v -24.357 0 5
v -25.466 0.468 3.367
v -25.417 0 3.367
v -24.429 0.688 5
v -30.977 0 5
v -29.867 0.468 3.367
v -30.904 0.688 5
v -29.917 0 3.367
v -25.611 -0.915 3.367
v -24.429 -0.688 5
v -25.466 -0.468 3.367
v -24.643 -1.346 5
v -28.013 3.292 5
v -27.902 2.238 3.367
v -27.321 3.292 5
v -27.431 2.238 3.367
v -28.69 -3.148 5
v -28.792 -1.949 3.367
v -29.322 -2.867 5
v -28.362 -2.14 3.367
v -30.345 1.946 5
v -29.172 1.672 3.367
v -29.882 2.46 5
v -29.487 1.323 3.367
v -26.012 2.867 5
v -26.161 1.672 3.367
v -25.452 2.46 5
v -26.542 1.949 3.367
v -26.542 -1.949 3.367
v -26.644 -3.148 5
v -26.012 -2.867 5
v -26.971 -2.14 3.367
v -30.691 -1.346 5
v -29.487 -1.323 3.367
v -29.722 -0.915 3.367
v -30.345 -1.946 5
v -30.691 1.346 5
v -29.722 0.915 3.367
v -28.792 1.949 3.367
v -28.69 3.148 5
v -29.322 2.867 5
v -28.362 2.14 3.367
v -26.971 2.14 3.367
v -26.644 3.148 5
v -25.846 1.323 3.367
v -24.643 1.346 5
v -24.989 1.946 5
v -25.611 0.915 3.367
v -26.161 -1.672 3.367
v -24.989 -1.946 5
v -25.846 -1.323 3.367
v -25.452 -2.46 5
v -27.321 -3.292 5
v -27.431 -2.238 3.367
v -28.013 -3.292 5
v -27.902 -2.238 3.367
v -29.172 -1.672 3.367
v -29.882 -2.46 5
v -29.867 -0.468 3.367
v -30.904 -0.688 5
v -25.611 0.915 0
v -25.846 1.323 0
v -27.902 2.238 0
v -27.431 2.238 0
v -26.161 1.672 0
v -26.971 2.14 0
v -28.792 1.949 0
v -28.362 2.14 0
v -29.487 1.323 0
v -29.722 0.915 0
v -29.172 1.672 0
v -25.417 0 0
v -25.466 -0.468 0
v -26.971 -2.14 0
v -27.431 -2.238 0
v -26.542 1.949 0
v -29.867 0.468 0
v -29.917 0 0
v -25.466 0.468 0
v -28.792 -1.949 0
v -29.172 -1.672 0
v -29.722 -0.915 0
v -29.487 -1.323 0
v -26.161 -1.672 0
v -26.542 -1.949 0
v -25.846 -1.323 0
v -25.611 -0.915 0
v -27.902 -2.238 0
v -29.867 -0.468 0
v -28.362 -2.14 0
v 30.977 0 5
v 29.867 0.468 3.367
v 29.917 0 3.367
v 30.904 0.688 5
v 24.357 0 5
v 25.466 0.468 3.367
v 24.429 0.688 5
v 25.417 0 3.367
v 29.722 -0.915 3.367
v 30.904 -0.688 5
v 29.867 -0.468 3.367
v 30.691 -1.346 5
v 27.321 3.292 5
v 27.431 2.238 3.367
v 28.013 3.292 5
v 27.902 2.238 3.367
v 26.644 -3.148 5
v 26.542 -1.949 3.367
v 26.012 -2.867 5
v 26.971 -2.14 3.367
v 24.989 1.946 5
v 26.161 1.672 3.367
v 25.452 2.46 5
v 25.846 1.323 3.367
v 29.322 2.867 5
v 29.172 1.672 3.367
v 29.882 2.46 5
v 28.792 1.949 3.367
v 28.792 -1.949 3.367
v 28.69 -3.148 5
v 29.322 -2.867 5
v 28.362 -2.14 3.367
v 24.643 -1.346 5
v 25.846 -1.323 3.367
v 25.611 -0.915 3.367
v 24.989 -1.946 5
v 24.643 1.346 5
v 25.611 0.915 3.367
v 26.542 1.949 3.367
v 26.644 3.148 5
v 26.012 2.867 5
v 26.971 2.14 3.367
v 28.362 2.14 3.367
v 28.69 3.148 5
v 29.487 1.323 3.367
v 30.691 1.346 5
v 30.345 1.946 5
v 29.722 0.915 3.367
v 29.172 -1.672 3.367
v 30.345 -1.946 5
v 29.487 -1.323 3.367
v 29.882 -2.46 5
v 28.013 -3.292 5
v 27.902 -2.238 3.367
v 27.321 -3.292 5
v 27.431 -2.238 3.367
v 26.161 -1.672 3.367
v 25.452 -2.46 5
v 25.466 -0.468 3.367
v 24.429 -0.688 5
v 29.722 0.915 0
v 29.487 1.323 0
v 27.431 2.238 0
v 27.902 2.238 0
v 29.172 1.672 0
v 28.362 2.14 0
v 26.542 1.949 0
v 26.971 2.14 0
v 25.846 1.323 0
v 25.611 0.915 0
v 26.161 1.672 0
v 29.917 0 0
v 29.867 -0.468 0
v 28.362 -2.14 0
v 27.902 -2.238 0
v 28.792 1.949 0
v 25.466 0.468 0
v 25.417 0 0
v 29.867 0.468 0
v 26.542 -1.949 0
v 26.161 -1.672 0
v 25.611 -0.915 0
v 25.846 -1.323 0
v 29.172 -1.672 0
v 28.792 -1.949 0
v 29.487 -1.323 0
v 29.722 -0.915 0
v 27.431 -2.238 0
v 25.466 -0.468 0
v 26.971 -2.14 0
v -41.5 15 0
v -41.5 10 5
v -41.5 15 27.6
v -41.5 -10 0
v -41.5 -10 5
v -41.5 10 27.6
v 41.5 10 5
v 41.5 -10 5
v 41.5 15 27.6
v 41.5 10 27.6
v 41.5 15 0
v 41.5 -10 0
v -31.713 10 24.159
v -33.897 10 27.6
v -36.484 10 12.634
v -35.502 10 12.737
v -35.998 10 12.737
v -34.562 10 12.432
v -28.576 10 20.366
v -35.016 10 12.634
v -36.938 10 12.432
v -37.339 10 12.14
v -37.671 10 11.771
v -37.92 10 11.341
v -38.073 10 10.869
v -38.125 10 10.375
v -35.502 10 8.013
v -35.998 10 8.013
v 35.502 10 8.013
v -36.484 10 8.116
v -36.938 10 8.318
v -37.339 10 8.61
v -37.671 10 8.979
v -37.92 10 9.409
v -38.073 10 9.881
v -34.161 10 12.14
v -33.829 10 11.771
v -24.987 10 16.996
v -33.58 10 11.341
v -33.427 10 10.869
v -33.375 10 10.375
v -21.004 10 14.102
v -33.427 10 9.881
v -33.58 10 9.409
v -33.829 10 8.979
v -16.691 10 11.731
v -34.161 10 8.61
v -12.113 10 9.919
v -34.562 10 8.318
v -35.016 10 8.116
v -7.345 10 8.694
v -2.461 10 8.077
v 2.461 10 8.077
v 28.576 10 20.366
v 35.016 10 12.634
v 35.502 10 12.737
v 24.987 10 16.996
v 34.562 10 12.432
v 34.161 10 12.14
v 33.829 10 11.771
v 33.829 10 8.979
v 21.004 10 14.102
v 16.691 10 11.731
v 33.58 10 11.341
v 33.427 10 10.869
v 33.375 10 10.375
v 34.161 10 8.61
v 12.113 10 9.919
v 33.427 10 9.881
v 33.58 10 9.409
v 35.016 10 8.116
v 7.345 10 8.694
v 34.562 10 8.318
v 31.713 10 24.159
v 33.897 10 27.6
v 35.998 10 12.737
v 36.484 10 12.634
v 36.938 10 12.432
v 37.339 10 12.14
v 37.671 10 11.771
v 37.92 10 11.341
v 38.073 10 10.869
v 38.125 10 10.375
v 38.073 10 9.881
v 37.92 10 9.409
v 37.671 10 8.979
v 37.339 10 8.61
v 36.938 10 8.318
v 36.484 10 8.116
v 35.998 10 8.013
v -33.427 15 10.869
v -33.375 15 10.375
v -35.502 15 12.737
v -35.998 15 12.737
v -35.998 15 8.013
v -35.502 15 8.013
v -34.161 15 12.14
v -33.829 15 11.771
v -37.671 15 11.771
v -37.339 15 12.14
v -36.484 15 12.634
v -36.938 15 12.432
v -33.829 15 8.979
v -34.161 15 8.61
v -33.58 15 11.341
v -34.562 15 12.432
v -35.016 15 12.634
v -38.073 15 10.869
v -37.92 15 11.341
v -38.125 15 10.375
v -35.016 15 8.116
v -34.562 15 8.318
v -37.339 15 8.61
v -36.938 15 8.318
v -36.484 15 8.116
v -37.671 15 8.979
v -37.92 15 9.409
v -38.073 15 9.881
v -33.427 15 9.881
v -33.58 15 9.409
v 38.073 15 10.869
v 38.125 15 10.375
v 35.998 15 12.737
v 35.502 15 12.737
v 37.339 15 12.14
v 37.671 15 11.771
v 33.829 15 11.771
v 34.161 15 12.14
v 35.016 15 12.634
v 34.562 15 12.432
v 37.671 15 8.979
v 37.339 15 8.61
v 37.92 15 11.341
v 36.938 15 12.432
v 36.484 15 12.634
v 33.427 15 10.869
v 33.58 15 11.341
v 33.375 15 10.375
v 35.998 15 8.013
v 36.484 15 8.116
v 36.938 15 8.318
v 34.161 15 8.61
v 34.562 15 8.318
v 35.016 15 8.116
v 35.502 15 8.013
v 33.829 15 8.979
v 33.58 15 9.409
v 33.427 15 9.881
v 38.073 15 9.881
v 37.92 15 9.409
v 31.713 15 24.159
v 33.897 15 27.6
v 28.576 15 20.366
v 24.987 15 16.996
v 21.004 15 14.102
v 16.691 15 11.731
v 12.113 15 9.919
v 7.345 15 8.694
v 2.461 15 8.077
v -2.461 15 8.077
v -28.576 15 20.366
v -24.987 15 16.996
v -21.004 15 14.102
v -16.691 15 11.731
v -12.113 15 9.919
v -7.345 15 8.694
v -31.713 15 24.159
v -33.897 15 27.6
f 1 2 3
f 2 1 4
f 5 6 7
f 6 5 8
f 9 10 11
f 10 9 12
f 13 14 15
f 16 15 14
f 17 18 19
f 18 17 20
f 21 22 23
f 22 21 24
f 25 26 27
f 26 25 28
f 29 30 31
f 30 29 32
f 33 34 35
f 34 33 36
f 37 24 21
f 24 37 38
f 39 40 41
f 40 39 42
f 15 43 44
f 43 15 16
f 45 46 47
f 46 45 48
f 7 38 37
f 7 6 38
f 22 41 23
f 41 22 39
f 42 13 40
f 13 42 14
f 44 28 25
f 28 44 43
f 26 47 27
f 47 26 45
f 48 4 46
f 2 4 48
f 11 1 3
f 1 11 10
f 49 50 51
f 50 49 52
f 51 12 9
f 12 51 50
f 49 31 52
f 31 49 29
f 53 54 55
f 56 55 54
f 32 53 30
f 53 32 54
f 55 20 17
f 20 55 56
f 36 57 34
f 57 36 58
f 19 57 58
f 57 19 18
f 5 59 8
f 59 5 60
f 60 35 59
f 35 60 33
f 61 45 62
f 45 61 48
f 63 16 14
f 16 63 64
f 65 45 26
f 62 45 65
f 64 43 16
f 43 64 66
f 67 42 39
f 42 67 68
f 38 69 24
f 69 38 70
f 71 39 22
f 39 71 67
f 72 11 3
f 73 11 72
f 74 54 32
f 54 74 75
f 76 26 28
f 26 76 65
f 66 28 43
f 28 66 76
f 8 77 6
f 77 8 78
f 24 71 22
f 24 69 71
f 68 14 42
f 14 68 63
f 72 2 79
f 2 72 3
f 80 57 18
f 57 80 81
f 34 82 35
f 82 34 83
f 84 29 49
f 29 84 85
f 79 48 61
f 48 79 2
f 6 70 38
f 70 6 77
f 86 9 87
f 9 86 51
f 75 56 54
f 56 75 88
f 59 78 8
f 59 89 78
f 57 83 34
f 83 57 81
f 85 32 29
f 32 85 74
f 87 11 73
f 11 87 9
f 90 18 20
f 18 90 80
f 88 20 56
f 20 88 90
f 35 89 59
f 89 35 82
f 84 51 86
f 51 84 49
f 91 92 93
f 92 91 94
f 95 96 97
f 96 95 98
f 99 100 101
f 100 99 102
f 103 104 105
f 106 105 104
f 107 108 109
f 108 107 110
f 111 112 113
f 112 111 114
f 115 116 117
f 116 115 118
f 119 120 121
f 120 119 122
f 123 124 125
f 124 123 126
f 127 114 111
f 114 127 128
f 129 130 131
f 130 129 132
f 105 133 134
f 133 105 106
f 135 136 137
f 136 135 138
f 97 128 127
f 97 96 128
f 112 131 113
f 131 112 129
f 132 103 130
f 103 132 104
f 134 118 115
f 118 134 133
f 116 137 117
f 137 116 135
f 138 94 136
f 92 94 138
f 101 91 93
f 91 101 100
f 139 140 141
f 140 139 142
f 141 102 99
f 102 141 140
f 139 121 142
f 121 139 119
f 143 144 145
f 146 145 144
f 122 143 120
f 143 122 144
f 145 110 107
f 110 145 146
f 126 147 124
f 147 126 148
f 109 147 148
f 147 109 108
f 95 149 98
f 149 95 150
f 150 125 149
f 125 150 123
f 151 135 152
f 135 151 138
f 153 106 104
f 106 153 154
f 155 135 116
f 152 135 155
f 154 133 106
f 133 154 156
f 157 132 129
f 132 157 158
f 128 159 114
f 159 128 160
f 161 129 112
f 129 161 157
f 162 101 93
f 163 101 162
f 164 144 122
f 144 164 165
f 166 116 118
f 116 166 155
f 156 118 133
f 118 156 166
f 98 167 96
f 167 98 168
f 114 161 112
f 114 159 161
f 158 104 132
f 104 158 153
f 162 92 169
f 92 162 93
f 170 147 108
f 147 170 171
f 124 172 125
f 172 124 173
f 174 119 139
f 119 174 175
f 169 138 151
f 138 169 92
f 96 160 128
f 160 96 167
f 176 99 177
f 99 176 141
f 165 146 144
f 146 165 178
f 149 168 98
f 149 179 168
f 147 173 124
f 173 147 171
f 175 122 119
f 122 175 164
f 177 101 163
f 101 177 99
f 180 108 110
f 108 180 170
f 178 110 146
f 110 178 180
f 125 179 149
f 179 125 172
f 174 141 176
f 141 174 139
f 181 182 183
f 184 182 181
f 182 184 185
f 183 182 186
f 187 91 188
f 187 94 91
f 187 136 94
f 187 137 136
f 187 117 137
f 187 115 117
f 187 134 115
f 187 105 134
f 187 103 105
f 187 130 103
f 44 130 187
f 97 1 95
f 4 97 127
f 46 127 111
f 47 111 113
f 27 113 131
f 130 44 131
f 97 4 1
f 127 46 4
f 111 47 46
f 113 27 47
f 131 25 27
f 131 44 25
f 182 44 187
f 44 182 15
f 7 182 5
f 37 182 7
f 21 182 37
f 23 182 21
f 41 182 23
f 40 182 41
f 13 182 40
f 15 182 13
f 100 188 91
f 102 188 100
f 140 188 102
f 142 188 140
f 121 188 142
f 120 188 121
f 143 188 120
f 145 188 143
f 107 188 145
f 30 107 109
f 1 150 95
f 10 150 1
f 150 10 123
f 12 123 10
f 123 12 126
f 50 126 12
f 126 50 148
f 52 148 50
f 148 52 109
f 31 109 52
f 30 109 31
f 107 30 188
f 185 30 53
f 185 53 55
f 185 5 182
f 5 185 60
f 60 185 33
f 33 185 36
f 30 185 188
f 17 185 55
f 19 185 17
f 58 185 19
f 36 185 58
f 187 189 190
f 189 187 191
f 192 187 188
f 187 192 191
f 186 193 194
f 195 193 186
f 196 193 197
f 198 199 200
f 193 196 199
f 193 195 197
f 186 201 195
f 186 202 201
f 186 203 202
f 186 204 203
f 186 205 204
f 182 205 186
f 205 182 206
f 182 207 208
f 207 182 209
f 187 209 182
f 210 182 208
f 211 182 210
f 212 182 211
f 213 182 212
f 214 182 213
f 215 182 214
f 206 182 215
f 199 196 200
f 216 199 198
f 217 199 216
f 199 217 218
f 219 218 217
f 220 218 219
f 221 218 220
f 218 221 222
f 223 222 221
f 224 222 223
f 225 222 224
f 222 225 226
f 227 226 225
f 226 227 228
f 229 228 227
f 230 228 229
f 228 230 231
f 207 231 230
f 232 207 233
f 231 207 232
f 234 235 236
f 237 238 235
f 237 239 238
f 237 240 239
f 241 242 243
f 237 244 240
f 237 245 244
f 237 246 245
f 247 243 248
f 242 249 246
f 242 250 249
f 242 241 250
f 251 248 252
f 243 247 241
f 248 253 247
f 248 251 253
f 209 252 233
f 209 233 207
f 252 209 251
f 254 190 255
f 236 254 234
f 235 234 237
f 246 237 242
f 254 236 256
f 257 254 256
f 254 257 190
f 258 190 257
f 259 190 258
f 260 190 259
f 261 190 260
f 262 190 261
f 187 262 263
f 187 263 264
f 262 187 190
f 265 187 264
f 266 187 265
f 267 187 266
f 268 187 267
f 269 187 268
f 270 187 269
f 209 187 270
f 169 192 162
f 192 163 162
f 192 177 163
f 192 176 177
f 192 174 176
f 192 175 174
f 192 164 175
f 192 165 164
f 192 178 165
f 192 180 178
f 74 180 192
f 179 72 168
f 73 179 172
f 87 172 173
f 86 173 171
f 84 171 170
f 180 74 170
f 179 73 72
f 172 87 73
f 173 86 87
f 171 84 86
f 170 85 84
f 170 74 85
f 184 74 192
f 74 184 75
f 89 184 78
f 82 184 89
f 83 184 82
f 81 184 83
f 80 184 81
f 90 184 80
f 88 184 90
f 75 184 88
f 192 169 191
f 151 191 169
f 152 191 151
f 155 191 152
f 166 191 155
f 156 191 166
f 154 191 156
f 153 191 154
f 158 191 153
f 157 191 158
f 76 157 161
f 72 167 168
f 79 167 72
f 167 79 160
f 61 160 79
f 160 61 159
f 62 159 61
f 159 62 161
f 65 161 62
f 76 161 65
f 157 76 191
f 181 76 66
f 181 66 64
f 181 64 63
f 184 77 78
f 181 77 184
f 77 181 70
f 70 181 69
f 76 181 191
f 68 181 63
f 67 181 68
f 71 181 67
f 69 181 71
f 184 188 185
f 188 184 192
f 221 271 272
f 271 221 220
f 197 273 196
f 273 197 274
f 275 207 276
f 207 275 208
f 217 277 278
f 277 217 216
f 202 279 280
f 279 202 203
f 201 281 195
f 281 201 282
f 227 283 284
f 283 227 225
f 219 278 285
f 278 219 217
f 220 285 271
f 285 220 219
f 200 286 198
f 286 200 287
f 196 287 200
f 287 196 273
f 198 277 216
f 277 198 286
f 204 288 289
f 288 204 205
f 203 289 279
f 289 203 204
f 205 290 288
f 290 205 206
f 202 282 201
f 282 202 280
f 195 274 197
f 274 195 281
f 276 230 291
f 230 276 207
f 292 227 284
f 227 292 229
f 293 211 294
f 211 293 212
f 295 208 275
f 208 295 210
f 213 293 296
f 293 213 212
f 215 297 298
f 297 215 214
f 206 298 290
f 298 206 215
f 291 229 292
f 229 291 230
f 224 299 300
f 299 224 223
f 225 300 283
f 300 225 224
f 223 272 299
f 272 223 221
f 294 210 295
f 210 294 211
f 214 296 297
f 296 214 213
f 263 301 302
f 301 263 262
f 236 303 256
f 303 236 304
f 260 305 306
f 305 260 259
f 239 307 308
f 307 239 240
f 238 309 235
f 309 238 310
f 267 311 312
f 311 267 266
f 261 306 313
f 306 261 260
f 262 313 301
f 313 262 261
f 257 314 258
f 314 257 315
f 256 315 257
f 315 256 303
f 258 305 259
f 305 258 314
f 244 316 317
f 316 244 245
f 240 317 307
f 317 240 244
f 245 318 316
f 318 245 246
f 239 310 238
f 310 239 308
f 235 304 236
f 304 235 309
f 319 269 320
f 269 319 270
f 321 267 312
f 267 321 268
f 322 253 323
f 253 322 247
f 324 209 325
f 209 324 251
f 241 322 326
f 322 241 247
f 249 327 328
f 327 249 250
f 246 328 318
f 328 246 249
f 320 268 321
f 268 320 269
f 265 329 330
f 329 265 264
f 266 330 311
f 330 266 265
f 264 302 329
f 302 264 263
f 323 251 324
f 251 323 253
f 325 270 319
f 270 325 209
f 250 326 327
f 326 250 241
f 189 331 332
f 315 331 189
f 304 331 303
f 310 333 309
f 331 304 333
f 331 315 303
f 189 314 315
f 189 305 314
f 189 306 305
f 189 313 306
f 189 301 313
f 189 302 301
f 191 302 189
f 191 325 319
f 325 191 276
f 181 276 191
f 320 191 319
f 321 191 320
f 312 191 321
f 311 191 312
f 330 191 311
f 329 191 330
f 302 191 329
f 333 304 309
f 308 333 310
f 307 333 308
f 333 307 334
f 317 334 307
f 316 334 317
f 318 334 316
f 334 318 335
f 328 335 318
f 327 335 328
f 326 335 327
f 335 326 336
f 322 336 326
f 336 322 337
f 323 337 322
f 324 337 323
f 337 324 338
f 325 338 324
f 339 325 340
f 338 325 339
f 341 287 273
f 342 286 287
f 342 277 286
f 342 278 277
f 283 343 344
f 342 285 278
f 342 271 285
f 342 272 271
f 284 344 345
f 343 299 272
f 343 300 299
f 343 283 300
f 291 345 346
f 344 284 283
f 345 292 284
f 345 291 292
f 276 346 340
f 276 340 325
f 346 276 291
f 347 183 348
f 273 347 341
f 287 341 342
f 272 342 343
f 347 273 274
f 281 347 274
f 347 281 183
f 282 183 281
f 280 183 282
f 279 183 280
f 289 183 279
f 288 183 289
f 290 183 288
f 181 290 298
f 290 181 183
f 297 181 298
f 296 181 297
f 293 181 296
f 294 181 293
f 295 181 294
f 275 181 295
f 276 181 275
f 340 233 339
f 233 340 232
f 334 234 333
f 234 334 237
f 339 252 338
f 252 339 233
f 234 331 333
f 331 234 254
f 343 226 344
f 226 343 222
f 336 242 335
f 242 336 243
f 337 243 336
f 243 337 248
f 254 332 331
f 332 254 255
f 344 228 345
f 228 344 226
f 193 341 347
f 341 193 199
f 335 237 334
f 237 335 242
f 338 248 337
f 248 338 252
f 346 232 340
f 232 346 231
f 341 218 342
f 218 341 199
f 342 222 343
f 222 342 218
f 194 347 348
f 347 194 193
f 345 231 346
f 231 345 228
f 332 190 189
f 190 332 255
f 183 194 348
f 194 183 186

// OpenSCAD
// fully parametric 90° fan mount 
// by zeus (zeus@ctdo.de)
//
// important: due to the fact that openscad calculates variables at compile time and not at runtime, you should take care to set "fan_size" AND "hole_dist" according to the table; otherwise your holes may be placed out of the model.
// some notes on fan-dimensions:
// 1) all values in mm!
// 2) i don't own specimen of all existing fan-sizes. if you are missing a special size for a fan you have let me know, then i will list it here too. -> email me at zeus@ctdo.de
// 3) fan screw holes are usually 4.5mm in diameter (60mm, 80mm, 120mm, 140mm,...). 40mm fans have 3.5mm holes.
// 4) the center-to-center-distance of the mounting holes is as following:
//		 25mm fan: ?    mm
//		 30mm fan: ?    mm
//		 40mm fan: 32   mm
//		 60mm fan: 50   mm
//		 80mm fan: 71.5 mm
//		 92mm fan: 82.5 mm
//		120mm fan: 105  mm
//		135mm fan: 120  mm
//		140mm fan: 125  mm
//		200mm fan: ?    mm (attention, various versions! some don't have a squared outside-frame. don't use the adapter on these ones.)
//		note that these distances are normaly given with a tolerance of up to +- 0.5mm.
// 5) some fans are very thick. better use countersink screws for surface mount then.
//
//
//
//
//
//
//
//
//---------------------------------------
//---------------------------------------
//
//some basic variables to adjust:
fan_size		= 80;		// fan side-length in mm
hole_dist	= 71.5;	// fan's center-to-center hole distance. see table above
material_t	= 5;		// thickness of the "walls" of the mount
f_mnt_holes_dia = 4.75;	// diameter for fan holes, better add 0.3 or something to the fan-holes
s_mnt_holes_dia = 4.5;	// hole diameter of surface mount holes
extra_height = 3;		// extra height above surface
extra_depth = 0;		// extra depth of the surface flange
extra_width	= 3;		// extra width of the mount over the fan; improves stability of the fan mounting holes. set to '0' if needed
countersunk_surface = 1;		// set to 1 if you want to use countersunk screws for the surface mount holes. will generate sunks on the screw holes
countersunk_fan = 0;		// same as above, only for the fan mount holes
//
//
//
//---------------------------------------
//---------------------------------------
// better not adjust these ones ;-)  :
mount_width = fan_size+extra_width;
wheel_d = fan_size*0.98;
l_base = mount_width;
w_base = fan_size/4+extra_depth;
t_base = material_t;
l_wall = mount_width;
w_wall = material_t;
t_wall = fan_size/4+material_t+extra_height;


module mountscrewhole(){
if (countersunk_surface == 1) {
difference() {
cylinder(h = material_t+0.2, r1 = 0, r2 = s_mnt_holes_dia*0.75, $fn=30);
}
cylinder(r = s_mnt_holes_dia/2,material_t+0.2, $fn=30); }
else {
cylinder(r = s_mnt_holes_dia/2,material_t+0.2, $fn=30); }
}

module fanscrewhole() {
if (countersunk_fan == 1) {
difference() {
cylinder(h = material_t+0.2, r1 = 0, r2 = f_mnt_holes_dia*0.75, $fn=30);
}
cylinder(r = f_mnt_holes_dia/2,w_wall+0.2, $fn=30);}
else {
cylinder(r = f_mnt_holes_dia/2,w_wall+0.2, $fn=30);}
}

module base() {
	difference() {
		translate ([-l_base/2, -w_base/2, 0]) {
			cube([l_base, w_base, t_base]); }
		translate ([-l_base/3,0,-0.1]){
			mountscrewhole(); } //surface mounting hole
		translate ([l_base/3,0,-0.1]) {
			mountscrewhole(); } //surface mounting hole	
	}
}

module wall(){
	translate ([-l_wall/2, w_base/2, -0]){
	difference(){
		cube([l_wall, w_wall, t_wall+material_t]);
			rotate (a =90, v = [1,0,0]){
				translate([mount_width/2-hole_dist/2,f_mnt_holes_dia/2+material_t+extra_height,-material_t-0.1]){
					fanscrewhole(); //fan mounting hole
							}
				translate([mount_width/2+hole_dist/2,f_mnt_holes_dia/2+material_t+extra_height,-material_t-0.1]){
					fanscrewhole(); //fan mounting hole
				}
			}
		}
	}
}

module carving()	{
		translate ([0,w_base/2+material_t+0.1,wheel_d/2+material_t+extra_height]){
 		rotate (a =90, v = [1,0,0])	{
			cylinder (r = wheel_d/2, h = material_t+0.2, $fn=50);
			translate ([-mount_width,-wheel_d/2*0.5,0])		{
				cube ([mount_width*2,wheel_d/2,material_t+0.2]);}
															}
											}
						}


module fan_mount()	{
base();
difference()	{
	wall();
	carving();	}
							}

fan_mount();
